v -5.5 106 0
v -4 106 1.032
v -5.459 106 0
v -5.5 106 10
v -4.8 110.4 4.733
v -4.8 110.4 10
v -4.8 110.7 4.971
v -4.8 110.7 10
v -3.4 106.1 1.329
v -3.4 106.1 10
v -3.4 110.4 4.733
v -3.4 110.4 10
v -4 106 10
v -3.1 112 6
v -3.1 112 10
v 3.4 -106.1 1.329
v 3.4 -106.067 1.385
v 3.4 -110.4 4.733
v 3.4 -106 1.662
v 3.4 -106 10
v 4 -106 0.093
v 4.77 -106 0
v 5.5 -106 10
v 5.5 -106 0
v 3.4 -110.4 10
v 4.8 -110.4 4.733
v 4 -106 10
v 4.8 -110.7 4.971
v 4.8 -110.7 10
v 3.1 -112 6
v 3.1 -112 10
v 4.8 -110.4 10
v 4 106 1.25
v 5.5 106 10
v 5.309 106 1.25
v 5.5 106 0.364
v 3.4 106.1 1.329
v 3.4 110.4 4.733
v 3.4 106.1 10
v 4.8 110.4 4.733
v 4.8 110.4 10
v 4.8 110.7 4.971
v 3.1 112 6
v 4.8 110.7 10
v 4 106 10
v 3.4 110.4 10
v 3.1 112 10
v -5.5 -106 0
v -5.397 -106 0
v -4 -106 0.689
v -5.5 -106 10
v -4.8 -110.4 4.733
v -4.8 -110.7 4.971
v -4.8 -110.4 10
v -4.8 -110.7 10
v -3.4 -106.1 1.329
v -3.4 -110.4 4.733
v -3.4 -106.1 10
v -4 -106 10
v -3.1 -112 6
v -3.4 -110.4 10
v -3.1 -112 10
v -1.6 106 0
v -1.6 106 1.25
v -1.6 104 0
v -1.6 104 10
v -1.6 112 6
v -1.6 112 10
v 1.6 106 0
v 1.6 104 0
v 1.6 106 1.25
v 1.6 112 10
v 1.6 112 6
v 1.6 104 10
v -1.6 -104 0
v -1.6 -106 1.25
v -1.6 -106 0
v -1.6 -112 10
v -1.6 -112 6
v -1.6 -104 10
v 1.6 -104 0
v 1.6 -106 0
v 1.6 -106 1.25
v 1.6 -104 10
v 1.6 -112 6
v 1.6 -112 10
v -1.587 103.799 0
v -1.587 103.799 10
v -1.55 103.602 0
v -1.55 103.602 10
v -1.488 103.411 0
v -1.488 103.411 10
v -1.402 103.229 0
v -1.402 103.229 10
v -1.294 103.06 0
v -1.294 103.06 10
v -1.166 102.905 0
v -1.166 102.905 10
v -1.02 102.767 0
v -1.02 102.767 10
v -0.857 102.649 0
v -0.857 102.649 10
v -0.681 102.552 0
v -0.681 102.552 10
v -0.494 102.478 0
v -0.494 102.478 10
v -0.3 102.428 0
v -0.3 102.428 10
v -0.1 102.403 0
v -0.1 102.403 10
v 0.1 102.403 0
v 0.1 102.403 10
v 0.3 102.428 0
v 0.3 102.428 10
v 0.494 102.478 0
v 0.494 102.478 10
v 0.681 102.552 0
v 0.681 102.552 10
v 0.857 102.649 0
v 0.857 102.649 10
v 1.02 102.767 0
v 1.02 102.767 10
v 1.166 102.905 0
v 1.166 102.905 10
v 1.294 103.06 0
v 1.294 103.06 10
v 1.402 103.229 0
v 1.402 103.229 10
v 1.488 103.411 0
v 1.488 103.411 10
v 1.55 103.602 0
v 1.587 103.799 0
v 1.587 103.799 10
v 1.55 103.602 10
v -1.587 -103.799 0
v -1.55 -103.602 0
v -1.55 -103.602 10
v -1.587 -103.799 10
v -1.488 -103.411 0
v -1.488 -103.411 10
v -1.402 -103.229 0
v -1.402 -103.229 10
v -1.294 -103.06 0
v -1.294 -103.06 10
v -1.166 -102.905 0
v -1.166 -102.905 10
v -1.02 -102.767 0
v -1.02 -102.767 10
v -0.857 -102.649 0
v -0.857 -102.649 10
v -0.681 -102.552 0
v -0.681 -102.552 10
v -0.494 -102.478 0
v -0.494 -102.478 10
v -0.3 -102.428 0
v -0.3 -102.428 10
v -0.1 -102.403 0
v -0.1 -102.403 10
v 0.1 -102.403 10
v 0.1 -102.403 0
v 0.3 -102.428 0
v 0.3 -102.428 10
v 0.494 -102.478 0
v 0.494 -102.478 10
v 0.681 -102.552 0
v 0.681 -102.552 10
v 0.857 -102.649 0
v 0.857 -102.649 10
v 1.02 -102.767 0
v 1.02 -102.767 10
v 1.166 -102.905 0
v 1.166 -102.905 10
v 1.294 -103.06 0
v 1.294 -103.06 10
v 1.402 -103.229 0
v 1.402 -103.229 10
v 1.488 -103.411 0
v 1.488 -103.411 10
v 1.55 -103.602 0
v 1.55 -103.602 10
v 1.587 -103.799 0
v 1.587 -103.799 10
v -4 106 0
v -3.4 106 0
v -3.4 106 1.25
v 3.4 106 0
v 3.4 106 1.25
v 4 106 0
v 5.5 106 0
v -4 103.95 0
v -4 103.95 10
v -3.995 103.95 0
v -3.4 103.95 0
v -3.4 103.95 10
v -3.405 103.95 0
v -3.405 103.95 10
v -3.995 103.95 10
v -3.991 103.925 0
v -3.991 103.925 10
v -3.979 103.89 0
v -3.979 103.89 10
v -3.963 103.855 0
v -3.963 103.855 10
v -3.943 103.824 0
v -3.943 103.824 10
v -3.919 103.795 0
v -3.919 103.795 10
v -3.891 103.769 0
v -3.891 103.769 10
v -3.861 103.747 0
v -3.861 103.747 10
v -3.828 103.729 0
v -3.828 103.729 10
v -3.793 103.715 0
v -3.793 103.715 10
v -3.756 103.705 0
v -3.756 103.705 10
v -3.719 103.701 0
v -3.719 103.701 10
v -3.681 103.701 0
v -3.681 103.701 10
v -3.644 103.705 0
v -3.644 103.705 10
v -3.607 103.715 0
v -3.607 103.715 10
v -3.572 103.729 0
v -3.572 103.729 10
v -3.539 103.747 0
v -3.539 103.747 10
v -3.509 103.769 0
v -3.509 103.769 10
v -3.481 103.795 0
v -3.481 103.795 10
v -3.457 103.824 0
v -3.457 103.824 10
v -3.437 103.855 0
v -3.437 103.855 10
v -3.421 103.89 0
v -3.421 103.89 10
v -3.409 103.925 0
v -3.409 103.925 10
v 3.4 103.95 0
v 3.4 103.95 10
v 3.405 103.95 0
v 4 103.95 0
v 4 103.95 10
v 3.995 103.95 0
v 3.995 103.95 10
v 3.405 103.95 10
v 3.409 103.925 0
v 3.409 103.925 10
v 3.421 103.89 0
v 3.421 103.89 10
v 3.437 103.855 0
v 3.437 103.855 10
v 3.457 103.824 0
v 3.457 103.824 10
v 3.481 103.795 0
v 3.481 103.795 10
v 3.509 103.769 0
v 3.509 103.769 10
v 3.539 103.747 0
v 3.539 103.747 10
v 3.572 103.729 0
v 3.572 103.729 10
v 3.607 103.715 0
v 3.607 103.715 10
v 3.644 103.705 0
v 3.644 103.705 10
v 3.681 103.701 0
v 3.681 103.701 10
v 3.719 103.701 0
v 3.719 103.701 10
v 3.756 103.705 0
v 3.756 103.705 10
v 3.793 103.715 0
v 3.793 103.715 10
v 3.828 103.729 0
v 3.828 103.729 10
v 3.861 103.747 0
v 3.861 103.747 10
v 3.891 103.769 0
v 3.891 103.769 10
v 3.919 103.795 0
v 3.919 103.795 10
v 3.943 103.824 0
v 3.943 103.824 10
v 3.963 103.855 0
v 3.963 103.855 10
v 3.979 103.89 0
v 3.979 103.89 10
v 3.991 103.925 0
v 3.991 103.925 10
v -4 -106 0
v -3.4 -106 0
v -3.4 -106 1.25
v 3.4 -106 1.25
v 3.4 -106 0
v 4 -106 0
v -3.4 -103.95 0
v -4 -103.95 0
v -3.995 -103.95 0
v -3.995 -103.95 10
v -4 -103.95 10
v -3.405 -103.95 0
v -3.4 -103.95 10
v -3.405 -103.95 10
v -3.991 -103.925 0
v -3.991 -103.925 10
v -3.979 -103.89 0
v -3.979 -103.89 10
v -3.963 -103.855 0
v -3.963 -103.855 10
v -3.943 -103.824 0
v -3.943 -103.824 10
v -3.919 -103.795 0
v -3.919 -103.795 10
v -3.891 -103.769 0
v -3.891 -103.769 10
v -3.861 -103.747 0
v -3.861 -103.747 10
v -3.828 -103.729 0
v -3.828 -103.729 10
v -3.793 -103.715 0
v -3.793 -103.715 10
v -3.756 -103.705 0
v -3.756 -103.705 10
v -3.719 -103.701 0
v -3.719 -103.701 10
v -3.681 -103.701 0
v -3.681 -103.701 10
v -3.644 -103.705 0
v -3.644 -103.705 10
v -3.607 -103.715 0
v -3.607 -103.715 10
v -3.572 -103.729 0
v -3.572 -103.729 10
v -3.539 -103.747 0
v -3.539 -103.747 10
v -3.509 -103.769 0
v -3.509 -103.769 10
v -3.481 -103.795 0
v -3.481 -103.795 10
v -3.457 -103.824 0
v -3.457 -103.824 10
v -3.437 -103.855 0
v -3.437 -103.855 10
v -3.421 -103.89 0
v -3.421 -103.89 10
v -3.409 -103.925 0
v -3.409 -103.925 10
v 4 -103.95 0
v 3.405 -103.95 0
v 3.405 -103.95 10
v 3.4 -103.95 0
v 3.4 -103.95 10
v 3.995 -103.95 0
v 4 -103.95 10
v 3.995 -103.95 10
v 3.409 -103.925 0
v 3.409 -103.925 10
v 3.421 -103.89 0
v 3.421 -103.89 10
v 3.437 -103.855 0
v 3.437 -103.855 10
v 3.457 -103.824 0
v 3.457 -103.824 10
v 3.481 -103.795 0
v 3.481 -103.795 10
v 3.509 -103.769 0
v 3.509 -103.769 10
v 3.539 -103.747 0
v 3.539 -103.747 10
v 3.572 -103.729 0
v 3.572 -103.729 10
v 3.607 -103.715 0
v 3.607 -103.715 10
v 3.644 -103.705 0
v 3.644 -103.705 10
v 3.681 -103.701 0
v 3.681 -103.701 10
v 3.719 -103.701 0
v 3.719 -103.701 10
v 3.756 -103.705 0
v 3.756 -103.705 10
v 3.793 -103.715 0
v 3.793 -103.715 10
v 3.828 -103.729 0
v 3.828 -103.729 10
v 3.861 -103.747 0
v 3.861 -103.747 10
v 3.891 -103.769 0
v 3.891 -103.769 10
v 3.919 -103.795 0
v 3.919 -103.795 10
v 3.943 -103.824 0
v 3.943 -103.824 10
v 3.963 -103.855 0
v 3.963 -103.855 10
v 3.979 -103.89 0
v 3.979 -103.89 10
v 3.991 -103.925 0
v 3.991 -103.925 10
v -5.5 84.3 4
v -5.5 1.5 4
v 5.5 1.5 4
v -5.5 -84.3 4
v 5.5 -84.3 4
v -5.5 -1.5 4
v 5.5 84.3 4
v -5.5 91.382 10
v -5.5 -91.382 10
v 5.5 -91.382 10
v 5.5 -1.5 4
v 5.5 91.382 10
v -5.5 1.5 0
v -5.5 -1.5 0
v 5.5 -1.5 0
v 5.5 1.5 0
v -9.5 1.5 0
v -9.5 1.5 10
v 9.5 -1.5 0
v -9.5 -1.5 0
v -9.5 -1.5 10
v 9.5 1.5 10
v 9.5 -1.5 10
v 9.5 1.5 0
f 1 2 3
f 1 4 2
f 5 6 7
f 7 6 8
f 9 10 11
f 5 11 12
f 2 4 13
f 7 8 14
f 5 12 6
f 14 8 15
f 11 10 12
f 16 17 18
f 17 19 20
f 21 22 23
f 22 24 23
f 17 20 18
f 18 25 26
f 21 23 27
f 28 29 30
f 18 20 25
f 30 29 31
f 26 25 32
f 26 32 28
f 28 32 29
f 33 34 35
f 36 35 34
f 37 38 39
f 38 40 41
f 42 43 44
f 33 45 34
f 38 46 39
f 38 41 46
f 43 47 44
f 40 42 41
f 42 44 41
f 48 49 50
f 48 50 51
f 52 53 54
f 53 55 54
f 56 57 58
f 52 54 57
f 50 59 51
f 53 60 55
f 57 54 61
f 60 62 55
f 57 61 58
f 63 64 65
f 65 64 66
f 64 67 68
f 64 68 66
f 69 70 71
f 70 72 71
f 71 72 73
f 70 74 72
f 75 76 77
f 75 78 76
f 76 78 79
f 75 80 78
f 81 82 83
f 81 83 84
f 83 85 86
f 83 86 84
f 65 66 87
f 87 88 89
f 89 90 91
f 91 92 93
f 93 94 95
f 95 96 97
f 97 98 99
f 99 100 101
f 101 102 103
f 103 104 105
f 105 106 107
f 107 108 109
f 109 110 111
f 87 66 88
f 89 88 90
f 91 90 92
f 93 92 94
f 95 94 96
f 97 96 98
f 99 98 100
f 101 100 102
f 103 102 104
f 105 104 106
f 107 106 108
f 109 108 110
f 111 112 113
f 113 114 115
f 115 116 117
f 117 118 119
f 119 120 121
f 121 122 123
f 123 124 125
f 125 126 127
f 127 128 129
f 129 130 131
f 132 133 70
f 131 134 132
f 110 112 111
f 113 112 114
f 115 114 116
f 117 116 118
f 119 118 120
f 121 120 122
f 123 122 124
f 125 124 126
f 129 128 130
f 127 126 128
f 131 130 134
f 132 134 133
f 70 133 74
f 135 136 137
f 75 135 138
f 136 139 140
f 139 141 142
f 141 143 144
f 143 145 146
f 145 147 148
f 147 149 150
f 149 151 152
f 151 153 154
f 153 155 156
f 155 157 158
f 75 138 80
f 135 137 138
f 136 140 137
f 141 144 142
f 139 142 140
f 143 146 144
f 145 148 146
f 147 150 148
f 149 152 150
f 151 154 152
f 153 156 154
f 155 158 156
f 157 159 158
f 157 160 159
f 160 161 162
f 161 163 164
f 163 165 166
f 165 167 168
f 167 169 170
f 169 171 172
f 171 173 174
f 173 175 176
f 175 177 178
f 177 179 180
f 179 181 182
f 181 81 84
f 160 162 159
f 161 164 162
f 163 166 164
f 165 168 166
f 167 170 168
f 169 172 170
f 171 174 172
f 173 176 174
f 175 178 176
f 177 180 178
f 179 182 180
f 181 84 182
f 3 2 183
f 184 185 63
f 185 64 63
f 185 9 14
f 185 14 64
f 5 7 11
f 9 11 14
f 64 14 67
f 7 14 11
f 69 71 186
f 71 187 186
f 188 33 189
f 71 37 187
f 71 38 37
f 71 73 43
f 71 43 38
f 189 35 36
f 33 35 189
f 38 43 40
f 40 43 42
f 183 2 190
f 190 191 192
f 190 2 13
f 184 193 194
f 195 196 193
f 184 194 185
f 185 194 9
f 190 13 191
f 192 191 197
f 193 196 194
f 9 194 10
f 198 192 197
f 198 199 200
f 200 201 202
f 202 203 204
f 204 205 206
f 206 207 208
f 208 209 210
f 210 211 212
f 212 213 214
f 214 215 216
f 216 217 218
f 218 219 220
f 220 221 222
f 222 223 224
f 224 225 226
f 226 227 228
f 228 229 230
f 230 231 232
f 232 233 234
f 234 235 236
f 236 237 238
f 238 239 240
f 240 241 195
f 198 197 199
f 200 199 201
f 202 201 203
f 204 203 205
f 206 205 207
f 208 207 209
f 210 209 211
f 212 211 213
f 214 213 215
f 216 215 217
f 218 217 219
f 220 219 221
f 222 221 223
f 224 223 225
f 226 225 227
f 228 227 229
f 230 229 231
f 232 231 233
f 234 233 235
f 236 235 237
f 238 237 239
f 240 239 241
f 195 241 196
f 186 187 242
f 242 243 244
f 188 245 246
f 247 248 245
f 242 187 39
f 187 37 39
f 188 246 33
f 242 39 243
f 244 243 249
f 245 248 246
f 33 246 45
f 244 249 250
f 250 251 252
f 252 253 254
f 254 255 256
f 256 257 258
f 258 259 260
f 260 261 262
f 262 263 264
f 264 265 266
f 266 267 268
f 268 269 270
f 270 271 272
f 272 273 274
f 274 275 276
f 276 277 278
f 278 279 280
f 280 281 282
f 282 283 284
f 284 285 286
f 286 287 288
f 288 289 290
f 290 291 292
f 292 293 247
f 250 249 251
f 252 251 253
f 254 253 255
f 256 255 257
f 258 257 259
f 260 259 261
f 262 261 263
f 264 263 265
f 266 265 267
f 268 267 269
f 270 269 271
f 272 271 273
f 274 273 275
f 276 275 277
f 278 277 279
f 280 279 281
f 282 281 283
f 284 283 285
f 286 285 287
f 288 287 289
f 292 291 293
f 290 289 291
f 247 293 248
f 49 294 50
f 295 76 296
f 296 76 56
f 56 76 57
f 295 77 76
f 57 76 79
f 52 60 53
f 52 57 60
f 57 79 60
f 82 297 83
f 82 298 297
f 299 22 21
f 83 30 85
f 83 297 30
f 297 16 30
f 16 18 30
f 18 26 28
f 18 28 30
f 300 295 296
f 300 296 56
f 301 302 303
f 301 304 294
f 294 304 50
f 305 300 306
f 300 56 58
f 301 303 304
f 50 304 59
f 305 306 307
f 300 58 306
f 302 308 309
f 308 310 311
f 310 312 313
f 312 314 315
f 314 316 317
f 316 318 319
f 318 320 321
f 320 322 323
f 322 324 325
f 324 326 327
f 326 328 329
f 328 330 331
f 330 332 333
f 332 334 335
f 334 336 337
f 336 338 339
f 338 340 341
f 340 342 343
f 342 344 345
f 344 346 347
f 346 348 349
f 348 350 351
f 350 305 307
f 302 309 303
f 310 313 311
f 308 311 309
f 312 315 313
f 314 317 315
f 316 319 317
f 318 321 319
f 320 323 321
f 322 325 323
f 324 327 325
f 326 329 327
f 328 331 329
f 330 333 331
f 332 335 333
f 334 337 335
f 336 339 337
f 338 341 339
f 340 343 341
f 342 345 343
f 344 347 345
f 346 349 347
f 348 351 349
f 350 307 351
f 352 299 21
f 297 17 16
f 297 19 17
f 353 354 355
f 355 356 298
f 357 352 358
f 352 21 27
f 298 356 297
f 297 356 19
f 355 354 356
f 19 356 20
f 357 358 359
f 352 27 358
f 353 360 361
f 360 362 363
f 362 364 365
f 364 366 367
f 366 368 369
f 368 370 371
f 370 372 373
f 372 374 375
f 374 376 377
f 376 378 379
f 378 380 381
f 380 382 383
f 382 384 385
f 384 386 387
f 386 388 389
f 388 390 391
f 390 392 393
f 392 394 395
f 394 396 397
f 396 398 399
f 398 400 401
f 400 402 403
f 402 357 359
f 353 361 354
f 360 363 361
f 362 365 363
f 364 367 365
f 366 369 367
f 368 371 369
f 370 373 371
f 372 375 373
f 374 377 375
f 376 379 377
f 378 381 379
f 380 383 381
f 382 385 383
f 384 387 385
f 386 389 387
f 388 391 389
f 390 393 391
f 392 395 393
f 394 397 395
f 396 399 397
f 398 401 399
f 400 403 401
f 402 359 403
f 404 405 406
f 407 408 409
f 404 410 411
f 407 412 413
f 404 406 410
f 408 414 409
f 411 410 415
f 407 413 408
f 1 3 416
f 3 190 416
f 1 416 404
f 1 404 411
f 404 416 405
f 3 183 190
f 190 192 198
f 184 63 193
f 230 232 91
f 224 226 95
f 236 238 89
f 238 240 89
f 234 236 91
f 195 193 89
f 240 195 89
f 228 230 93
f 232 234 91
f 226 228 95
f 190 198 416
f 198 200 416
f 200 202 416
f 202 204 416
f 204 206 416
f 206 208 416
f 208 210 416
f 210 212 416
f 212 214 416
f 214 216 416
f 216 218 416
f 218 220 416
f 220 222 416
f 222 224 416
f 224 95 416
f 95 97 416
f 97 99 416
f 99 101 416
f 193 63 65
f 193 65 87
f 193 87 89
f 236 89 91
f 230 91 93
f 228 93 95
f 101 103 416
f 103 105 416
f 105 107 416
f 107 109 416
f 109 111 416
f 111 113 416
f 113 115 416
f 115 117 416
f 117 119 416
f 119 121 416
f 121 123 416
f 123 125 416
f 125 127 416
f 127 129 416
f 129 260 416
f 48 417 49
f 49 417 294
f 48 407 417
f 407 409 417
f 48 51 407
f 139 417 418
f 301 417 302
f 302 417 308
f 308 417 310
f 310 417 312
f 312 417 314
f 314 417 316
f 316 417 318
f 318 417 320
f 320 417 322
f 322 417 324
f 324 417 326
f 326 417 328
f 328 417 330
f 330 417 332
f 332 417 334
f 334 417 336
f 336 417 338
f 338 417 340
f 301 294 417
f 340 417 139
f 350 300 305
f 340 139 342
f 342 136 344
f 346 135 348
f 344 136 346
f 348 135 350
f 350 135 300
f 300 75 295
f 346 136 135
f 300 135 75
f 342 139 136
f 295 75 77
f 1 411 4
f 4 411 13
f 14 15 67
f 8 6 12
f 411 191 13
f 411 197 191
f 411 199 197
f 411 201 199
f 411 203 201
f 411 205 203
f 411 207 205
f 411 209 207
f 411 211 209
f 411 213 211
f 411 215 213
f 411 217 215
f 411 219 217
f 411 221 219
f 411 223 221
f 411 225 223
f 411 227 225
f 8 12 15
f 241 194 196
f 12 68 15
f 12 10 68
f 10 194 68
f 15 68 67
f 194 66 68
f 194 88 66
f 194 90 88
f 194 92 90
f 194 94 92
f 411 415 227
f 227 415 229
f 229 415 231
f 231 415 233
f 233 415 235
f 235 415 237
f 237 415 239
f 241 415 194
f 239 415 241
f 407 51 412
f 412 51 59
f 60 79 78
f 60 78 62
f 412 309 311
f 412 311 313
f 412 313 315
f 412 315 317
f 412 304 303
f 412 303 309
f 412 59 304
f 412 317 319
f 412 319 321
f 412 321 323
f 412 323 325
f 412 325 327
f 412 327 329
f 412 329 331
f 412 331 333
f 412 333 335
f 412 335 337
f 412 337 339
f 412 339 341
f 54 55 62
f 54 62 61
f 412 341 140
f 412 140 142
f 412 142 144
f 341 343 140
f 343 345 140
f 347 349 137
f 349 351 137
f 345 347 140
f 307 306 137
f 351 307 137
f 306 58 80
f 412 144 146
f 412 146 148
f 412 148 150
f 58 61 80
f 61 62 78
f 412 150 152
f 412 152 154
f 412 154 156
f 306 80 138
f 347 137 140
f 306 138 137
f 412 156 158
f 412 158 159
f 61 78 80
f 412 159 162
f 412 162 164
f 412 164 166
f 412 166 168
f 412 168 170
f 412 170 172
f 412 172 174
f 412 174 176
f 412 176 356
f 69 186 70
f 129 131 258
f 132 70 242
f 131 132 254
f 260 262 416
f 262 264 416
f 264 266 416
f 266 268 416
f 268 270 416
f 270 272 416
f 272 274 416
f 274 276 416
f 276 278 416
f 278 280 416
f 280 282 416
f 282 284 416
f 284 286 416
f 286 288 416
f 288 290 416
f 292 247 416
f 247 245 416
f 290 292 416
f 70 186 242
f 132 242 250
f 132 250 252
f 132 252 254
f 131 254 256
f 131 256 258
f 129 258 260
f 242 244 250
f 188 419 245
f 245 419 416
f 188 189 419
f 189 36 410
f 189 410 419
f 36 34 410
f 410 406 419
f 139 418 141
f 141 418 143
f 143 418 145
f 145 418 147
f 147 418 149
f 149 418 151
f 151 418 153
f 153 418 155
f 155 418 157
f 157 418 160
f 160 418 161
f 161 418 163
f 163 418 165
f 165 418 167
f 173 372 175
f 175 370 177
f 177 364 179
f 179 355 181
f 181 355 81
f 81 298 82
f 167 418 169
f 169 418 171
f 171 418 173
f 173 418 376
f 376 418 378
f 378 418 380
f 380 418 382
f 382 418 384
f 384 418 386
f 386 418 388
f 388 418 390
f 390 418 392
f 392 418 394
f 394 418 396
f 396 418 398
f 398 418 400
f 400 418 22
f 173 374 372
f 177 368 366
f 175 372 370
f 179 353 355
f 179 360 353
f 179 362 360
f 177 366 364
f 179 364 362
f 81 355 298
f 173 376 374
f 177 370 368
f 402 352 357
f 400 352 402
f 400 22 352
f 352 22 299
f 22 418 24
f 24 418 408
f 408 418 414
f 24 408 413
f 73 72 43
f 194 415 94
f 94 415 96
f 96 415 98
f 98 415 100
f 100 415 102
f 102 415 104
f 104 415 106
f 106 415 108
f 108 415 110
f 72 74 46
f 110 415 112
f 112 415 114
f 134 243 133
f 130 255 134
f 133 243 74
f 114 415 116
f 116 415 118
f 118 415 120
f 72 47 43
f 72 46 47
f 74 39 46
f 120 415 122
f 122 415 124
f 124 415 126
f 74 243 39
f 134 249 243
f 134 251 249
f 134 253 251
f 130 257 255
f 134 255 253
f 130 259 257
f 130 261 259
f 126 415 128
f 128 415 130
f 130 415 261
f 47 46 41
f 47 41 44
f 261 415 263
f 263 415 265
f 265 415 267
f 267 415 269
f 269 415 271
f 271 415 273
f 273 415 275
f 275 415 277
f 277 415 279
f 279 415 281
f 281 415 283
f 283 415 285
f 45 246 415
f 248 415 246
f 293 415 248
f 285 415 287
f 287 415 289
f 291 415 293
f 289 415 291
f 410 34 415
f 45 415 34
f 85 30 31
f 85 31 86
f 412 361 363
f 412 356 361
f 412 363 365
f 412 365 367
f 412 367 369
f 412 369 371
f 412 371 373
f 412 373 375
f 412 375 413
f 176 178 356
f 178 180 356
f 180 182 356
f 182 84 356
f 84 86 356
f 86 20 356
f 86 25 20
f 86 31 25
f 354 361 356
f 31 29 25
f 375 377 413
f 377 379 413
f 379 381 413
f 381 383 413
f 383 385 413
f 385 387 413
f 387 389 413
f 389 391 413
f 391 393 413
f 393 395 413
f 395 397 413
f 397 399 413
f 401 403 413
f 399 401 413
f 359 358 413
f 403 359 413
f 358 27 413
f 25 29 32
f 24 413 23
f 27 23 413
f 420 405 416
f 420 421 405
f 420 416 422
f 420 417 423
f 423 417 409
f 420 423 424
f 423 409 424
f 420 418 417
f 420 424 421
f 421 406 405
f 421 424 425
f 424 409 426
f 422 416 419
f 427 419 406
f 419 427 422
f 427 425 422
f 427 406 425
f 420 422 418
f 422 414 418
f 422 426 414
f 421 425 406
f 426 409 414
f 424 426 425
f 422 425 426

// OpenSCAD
$fn = 50;

difference() {
	union() {
		translate(v = [0, 106.0, 0]) {
			rotate(a = [90, 0, 0]) {
				difference() {
					union() {
						translate(v = [0, 0, 0]) {
							rotate(a = [0, 0, 0]) {
								difference() {
									union() {
										translate(v = [-5.5, 0, -6.0]) {
											cube(size = [11.0, 10.0, 224.0]);
										}
									}
									union() {
										translate(v = [0, 0, 0]) {
											rotate(a = [0, 0, 0]) {
												difference() {
													union() {
														translate(v = [0, 10.1, 0]) {
															rotate(a = [90, 0, 0]) {
																linear_extrude(height = 10.2) {
																	polygon(points = [[-3.1, -6.1], [-3.1, -6.0], [-4.8, -4.7], [-4.8, -4.4], [-3.4, -4.4], [-3.4, 0], [-5.6, 0], [-5.6, -6.1]]);
																}
															}
														}
														translate(v = [0, 10.1, 0]) {
															rotate(a = [90, 0, 0]) {
																linear_extrude(height = 10.2) {
																	polygon(points = [[3.1, -6.1], [3.1, -6.0], [4.8, -4.7], [4.8, -4.4], [3.4, -4.4], [3.4, 0], [5.6, 0], [5.6, -6.1]]);
																}
															}
														}
														translate(v = [-1.5999999999999999, -0.1, -6.1]) {
															cube(size = [3.1999999999999997, 10.2, 8.1]);
														}
														translate(v = [0, 10.1, 2.0]) {
															rotate(a = [90, 0, 0]) {
																cylinder(h = 10.2, r = 1.5999999999999999);
															}
														}
													}
													union();
												}
											}
										}
										translate(v = [0, 0, 212.0]) {
											rotate(a = [0, 180, 0]) {
												difference() {
													union() {
														translate(v = [0, 10.1, 0]) {
															rotate(a = [90, 0, 0]) {
																linear_extrude(height = 10.2) {
																	polygon(points = [[-3.1, -6.1], [-3.1, -6.0], [-4.8, -4.7], [-4.8, -4.4], [-3.4, -4.4], [-3.4, 0], [-5.6, 0], [-5.6, -6.1]]);
																}
															}
														}
														translate(v = [0, 10.1, 0]) {
															rotate(a = [90, 0, 0]) {
																linear_extrude(height = 10.2) {
																	polygon(points = [[3.1, -6.1], [3.1, -6.0], [4.8, -4.7], [4.8, -4.4], [3.4, -4.4], [3.4, 0], [5.6, 0], [5.6, -6.1]]);
																}
															}
														}
														translate(v = [-1.5999999999999999, -0.1, -6.1]) {
															cube(size = [3.1999999999999997, 10.2, 8.1]);
														}
														translate(v = [0, 10.1, 2.0]) {
															rotate(a = [90, 0, 0]) {
																cylinder(h = 10.2, r = 1.5999999999999999);
															}
														}
													}
													union();
												}
											}
										}
										translate(v = [-5.6, 0, 0]) {
											rotate(a = [90, 0, 90]) {
												linear_extrude(height = 11.2) {
													polygon(points = [[-0.1, -6.1], [6.079166666666667, -6.1], [1.25, 0], [-0.1, 0]]);
												}
											}
										}
										translate(v = [0, 10.1, 0]) {
											rotate(a = [90, 0, 0]) {
												linear_extrude(height = 10.2) {
													polygon(points = [[-3.4, -0.1], [-4.0, -0.1], [-4.0, 2.05], [-3.4, 2.05]]);
												}
											}
										}
										translate(v = [-3.6999999999999997, 10.1, 2.0]) {
											rotate(a = [90, 0, 0]) {
												cylinder(h = 10.2, r = 0.3);
											}
										}
										translate(v = [0, 10.1, 0]) {
											rotate(a = [90, 0, 0]) {
												linear_extrude(height = 10.2) {
													polygon(points = [[3.4, -0.1], [4.0, -0.1], [4.0, 2.05], [3.4, 2.05]]);
												}
											}
										}
										translate(v = [3.6999999999999997, 10.1, 2.0]) {
											rotate(a = [90, 0, 0]) {
												cylinder(h = 10.2, r = 0.3);
											}
										}
										translate(v = [-5.6, 0, 0]) {
											rotate(a = [90, 0, 90]) {
												linear_extrude(height = 11.2) {
													polygon(points = [[-0.1, 218.1], [6.079166666666667, 218.1], [1.25, 212.0], [-0.1, 212.0]]);
												}
											}
										}
										translate(v = [0, 10.1, 0]) {
											rotate(a = [90, 0, 0]) {
												linear_extrude(height = 10.2) {
													polygon(points = [[-3.4, 212.1], [-4.0, 212.1], [-4.0, 209.95], [-3.4, 209.95]]);
												}
											}
										}
										translate(v = [-3.6999999999999997, 10.1, 210.0]) {
											rotate(a = [90, 0, 0]) {
												cylinder(h = 10.2, r = 0.3);
											}
										}
										translate(v = [0, 10.1, 0]) {
											rotate(a = [90, 0, 0]) {
												linear_extrude(height = 10.2) {
													polygon(points = [[3.4, 212.1], [4.0, 212.1], [4.0, 209.95], [3.4, 209.95]]);
												}
											}
										}
										translate(v = [3.6999999999999997, 10.1, 210.0]) {
											rotate(a = [90, 0, 0]) {
												cylinder(h = 10.2, r = 0.3);
											}
										}
										translate(v = [-5.6, 0, 0]) {
											rotate(a = [90, 0, 90]) {
												linear_extrude(height = 11.2) {
													polygon(points = [[10.1, 14.5], [10.1, 197.5], [4.0, 190.3], [4.0, 21.7]]);
												}
											}
										}
									}
								}
							}
						}
						translate(v = [-9.5, 0, 104.5]) {
							cube(size = [19.0, 10.0, 3.0]);
						}
					}
					union();
				}
			}
		}
	}
	union();
}
